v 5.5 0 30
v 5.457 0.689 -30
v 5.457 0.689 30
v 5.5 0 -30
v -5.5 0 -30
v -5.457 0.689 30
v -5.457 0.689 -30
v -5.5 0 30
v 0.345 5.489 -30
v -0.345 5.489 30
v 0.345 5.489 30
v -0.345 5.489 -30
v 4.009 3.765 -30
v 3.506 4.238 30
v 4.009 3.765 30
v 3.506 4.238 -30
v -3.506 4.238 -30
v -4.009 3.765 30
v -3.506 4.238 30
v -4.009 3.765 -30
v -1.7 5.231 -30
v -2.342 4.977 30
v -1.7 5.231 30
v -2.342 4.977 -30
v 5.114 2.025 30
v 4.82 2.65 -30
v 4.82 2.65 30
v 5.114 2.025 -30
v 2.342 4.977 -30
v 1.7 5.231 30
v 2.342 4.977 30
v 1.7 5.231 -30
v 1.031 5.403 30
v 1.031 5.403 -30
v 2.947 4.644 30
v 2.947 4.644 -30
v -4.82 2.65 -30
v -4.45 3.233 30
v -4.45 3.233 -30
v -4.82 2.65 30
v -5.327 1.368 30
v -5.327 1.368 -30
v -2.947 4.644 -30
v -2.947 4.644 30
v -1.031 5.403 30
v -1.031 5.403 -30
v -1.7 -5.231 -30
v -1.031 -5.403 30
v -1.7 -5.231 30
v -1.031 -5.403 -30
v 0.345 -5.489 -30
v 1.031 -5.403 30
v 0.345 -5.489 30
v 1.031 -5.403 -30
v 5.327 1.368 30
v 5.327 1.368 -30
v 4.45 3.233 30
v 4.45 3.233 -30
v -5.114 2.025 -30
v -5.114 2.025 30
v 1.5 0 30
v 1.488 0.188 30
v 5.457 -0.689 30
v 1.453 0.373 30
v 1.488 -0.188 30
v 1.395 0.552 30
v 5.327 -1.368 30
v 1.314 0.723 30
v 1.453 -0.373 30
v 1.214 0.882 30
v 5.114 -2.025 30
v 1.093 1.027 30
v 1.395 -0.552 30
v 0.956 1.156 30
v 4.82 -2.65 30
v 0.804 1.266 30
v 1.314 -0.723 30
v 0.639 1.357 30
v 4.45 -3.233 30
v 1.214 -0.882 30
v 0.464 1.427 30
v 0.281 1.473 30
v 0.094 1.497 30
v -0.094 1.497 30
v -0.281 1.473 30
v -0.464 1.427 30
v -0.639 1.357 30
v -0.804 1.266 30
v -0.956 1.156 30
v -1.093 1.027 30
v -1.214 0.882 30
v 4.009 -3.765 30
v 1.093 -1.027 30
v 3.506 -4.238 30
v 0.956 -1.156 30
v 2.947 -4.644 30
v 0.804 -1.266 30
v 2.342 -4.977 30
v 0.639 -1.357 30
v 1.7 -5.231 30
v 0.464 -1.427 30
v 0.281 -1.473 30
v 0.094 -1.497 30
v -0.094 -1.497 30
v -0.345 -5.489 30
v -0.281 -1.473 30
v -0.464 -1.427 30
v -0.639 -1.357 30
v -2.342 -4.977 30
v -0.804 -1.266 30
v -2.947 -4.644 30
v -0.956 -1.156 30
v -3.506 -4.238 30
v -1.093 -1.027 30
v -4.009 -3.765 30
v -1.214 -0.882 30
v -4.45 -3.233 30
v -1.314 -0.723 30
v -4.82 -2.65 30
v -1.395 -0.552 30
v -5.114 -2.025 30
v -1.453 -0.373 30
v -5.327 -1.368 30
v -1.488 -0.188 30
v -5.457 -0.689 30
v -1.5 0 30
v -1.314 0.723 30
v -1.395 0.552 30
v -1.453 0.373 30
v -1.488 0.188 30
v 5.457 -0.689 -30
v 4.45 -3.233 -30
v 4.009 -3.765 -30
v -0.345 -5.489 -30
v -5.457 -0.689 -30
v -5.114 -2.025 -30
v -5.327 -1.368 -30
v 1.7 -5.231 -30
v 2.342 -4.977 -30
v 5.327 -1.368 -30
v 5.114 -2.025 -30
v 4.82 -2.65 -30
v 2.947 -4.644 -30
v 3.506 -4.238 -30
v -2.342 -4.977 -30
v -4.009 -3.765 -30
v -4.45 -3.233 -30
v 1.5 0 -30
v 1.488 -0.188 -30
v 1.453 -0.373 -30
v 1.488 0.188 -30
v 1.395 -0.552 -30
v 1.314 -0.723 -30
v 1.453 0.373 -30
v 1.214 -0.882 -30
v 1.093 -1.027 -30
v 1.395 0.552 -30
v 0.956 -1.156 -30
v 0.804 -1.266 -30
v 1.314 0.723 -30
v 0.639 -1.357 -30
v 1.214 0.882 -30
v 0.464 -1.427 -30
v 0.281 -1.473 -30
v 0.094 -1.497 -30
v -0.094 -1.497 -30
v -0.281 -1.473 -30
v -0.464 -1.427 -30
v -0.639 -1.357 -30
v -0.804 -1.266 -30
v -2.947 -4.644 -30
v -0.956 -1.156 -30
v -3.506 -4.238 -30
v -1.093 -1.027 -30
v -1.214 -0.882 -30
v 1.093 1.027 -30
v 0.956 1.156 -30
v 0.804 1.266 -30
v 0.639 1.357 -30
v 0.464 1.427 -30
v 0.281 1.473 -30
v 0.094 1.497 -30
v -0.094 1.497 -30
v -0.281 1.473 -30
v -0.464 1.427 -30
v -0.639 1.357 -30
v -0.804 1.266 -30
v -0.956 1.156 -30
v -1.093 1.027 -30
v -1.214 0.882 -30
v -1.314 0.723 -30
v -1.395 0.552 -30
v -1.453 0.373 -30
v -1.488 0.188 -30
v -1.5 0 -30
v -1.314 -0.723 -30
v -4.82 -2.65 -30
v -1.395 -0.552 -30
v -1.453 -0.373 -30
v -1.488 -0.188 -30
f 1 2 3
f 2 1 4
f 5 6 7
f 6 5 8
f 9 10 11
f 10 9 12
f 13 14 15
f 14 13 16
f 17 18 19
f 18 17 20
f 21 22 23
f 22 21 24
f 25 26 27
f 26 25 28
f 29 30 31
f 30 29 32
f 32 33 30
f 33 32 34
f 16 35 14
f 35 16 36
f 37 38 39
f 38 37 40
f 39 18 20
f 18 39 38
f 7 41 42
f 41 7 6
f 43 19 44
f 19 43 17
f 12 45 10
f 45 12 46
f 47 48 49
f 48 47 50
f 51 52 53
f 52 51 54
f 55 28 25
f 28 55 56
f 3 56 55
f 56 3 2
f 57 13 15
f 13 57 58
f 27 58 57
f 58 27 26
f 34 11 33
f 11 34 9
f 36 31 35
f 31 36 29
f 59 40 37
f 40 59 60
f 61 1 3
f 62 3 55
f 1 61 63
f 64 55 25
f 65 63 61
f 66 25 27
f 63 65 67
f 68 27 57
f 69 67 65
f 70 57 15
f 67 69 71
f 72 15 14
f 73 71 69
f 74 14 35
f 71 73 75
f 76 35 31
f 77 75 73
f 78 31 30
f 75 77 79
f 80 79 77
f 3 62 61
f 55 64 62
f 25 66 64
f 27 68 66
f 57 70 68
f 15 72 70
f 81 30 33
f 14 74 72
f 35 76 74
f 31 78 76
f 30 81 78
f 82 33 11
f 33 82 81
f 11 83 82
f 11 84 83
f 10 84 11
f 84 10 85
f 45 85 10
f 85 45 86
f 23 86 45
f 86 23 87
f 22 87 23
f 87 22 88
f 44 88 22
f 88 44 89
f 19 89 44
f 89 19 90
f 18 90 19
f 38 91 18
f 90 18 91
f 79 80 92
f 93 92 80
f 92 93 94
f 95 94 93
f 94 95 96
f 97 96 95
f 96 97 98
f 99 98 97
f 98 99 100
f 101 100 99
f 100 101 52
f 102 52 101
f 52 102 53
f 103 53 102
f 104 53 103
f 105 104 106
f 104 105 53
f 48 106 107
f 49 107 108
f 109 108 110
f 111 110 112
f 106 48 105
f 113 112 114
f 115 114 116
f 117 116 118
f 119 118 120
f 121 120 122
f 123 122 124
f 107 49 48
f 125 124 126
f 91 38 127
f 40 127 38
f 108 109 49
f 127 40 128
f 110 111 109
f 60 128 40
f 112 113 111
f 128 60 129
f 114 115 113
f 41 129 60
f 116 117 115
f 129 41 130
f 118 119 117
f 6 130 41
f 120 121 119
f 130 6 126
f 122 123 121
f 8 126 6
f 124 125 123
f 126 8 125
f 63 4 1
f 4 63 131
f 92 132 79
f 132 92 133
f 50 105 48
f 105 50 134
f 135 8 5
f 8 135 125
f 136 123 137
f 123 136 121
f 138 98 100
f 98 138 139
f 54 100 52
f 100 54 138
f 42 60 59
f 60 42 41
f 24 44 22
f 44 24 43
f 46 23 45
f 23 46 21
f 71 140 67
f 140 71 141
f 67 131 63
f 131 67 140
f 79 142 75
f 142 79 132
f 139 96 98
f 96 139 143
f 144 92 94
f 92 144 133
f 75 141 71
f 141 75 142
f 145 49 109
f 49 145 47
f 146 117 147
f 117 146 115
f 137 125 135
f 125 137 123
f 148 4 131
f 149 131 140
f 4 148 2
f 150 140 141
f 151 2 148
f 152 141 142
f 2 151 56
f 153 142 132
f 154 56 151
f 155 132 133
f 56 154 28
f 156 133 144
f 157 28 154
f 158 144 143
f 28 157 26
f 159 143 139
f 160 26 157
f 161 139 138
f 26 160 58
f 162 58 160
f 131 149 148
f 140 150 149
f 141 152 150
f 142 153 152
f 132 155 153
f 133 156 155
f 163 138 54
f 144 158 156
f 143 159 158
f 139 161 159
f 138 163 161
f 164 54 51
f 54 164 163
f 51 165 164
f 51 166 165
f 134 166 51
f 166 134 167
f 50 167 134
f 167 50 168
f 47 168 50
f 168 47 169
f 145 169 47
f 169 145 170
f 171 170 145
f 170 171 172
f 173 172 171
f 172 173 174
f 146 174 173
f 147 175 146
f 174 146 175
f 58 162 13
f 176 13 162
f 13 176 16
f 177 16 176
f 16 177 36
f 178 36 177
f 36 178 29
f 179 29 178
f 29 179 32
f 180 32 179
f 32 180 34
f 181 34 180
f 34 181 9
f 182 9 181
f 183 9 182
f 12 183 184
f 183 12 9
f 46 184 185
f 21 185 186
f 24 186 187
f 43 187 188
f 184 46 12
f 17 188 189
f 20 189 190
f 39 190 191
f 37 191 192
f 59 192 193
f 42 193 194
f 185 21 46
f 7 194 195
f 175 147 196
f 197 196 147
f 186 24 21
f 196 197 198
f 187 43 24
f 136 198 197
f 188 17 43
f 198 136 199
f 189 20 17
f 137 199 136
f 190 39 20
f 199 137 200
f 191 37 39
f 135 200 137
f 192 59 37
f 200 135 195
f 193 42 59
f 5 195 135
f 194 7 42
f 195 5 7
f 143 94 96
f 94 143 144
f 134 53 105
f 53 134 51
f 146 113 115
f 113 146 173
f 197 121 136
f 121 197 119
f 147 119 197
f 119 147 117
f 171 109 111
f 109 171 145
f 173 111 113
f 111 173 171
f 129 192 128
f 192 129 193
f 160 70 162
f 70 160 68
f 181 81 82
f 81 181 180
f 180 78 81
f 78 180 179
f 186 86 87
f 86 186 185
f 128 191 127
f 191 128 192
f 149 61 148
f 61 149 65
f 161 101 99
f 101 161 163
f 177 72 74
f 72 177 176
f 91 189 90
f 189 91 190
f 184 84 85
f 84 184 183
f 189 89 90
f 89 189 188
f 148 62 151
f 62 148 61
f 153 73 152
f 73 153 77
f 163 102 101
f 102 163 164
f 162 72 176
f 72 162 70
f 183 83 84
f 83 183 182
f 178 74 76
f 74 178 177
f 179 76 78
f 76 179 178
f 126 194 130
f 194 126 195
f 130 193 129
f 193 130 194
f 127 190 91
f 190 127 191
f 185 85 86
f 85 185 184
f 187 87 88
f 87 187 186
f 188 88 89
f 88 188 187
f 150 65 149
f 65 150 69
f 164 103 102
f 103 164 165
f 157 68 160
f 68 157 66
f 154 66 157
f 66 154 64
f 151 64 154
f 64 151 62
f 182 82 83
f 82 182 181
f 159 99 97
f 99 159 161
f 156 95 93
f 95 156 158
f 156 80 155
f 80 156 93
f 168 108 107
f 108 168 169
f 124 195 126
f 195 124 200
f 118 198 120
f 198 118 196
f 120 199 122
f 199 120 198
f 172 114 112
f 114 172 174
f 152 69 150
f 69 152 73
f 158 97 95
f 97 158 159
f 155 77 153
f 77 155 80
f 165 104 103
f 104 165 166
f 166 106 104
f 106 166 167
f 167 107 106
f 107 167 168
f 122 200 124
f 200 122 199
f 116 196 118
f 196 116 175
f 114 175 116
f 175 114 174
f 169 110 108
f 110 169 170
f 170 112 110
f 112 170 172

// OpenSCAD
$fn = 50;


difference() {
	union() {
		translate(v = [0, 0, -30.0000000000]) {
			cylinder(h = 60, r = 5.5000000000);
		}
	}
	union() {
		translate(v = [0, 0, -100.0000000000]) {
			cylinder(h = 200, r = 1.5000000000);
		}
	}
}
